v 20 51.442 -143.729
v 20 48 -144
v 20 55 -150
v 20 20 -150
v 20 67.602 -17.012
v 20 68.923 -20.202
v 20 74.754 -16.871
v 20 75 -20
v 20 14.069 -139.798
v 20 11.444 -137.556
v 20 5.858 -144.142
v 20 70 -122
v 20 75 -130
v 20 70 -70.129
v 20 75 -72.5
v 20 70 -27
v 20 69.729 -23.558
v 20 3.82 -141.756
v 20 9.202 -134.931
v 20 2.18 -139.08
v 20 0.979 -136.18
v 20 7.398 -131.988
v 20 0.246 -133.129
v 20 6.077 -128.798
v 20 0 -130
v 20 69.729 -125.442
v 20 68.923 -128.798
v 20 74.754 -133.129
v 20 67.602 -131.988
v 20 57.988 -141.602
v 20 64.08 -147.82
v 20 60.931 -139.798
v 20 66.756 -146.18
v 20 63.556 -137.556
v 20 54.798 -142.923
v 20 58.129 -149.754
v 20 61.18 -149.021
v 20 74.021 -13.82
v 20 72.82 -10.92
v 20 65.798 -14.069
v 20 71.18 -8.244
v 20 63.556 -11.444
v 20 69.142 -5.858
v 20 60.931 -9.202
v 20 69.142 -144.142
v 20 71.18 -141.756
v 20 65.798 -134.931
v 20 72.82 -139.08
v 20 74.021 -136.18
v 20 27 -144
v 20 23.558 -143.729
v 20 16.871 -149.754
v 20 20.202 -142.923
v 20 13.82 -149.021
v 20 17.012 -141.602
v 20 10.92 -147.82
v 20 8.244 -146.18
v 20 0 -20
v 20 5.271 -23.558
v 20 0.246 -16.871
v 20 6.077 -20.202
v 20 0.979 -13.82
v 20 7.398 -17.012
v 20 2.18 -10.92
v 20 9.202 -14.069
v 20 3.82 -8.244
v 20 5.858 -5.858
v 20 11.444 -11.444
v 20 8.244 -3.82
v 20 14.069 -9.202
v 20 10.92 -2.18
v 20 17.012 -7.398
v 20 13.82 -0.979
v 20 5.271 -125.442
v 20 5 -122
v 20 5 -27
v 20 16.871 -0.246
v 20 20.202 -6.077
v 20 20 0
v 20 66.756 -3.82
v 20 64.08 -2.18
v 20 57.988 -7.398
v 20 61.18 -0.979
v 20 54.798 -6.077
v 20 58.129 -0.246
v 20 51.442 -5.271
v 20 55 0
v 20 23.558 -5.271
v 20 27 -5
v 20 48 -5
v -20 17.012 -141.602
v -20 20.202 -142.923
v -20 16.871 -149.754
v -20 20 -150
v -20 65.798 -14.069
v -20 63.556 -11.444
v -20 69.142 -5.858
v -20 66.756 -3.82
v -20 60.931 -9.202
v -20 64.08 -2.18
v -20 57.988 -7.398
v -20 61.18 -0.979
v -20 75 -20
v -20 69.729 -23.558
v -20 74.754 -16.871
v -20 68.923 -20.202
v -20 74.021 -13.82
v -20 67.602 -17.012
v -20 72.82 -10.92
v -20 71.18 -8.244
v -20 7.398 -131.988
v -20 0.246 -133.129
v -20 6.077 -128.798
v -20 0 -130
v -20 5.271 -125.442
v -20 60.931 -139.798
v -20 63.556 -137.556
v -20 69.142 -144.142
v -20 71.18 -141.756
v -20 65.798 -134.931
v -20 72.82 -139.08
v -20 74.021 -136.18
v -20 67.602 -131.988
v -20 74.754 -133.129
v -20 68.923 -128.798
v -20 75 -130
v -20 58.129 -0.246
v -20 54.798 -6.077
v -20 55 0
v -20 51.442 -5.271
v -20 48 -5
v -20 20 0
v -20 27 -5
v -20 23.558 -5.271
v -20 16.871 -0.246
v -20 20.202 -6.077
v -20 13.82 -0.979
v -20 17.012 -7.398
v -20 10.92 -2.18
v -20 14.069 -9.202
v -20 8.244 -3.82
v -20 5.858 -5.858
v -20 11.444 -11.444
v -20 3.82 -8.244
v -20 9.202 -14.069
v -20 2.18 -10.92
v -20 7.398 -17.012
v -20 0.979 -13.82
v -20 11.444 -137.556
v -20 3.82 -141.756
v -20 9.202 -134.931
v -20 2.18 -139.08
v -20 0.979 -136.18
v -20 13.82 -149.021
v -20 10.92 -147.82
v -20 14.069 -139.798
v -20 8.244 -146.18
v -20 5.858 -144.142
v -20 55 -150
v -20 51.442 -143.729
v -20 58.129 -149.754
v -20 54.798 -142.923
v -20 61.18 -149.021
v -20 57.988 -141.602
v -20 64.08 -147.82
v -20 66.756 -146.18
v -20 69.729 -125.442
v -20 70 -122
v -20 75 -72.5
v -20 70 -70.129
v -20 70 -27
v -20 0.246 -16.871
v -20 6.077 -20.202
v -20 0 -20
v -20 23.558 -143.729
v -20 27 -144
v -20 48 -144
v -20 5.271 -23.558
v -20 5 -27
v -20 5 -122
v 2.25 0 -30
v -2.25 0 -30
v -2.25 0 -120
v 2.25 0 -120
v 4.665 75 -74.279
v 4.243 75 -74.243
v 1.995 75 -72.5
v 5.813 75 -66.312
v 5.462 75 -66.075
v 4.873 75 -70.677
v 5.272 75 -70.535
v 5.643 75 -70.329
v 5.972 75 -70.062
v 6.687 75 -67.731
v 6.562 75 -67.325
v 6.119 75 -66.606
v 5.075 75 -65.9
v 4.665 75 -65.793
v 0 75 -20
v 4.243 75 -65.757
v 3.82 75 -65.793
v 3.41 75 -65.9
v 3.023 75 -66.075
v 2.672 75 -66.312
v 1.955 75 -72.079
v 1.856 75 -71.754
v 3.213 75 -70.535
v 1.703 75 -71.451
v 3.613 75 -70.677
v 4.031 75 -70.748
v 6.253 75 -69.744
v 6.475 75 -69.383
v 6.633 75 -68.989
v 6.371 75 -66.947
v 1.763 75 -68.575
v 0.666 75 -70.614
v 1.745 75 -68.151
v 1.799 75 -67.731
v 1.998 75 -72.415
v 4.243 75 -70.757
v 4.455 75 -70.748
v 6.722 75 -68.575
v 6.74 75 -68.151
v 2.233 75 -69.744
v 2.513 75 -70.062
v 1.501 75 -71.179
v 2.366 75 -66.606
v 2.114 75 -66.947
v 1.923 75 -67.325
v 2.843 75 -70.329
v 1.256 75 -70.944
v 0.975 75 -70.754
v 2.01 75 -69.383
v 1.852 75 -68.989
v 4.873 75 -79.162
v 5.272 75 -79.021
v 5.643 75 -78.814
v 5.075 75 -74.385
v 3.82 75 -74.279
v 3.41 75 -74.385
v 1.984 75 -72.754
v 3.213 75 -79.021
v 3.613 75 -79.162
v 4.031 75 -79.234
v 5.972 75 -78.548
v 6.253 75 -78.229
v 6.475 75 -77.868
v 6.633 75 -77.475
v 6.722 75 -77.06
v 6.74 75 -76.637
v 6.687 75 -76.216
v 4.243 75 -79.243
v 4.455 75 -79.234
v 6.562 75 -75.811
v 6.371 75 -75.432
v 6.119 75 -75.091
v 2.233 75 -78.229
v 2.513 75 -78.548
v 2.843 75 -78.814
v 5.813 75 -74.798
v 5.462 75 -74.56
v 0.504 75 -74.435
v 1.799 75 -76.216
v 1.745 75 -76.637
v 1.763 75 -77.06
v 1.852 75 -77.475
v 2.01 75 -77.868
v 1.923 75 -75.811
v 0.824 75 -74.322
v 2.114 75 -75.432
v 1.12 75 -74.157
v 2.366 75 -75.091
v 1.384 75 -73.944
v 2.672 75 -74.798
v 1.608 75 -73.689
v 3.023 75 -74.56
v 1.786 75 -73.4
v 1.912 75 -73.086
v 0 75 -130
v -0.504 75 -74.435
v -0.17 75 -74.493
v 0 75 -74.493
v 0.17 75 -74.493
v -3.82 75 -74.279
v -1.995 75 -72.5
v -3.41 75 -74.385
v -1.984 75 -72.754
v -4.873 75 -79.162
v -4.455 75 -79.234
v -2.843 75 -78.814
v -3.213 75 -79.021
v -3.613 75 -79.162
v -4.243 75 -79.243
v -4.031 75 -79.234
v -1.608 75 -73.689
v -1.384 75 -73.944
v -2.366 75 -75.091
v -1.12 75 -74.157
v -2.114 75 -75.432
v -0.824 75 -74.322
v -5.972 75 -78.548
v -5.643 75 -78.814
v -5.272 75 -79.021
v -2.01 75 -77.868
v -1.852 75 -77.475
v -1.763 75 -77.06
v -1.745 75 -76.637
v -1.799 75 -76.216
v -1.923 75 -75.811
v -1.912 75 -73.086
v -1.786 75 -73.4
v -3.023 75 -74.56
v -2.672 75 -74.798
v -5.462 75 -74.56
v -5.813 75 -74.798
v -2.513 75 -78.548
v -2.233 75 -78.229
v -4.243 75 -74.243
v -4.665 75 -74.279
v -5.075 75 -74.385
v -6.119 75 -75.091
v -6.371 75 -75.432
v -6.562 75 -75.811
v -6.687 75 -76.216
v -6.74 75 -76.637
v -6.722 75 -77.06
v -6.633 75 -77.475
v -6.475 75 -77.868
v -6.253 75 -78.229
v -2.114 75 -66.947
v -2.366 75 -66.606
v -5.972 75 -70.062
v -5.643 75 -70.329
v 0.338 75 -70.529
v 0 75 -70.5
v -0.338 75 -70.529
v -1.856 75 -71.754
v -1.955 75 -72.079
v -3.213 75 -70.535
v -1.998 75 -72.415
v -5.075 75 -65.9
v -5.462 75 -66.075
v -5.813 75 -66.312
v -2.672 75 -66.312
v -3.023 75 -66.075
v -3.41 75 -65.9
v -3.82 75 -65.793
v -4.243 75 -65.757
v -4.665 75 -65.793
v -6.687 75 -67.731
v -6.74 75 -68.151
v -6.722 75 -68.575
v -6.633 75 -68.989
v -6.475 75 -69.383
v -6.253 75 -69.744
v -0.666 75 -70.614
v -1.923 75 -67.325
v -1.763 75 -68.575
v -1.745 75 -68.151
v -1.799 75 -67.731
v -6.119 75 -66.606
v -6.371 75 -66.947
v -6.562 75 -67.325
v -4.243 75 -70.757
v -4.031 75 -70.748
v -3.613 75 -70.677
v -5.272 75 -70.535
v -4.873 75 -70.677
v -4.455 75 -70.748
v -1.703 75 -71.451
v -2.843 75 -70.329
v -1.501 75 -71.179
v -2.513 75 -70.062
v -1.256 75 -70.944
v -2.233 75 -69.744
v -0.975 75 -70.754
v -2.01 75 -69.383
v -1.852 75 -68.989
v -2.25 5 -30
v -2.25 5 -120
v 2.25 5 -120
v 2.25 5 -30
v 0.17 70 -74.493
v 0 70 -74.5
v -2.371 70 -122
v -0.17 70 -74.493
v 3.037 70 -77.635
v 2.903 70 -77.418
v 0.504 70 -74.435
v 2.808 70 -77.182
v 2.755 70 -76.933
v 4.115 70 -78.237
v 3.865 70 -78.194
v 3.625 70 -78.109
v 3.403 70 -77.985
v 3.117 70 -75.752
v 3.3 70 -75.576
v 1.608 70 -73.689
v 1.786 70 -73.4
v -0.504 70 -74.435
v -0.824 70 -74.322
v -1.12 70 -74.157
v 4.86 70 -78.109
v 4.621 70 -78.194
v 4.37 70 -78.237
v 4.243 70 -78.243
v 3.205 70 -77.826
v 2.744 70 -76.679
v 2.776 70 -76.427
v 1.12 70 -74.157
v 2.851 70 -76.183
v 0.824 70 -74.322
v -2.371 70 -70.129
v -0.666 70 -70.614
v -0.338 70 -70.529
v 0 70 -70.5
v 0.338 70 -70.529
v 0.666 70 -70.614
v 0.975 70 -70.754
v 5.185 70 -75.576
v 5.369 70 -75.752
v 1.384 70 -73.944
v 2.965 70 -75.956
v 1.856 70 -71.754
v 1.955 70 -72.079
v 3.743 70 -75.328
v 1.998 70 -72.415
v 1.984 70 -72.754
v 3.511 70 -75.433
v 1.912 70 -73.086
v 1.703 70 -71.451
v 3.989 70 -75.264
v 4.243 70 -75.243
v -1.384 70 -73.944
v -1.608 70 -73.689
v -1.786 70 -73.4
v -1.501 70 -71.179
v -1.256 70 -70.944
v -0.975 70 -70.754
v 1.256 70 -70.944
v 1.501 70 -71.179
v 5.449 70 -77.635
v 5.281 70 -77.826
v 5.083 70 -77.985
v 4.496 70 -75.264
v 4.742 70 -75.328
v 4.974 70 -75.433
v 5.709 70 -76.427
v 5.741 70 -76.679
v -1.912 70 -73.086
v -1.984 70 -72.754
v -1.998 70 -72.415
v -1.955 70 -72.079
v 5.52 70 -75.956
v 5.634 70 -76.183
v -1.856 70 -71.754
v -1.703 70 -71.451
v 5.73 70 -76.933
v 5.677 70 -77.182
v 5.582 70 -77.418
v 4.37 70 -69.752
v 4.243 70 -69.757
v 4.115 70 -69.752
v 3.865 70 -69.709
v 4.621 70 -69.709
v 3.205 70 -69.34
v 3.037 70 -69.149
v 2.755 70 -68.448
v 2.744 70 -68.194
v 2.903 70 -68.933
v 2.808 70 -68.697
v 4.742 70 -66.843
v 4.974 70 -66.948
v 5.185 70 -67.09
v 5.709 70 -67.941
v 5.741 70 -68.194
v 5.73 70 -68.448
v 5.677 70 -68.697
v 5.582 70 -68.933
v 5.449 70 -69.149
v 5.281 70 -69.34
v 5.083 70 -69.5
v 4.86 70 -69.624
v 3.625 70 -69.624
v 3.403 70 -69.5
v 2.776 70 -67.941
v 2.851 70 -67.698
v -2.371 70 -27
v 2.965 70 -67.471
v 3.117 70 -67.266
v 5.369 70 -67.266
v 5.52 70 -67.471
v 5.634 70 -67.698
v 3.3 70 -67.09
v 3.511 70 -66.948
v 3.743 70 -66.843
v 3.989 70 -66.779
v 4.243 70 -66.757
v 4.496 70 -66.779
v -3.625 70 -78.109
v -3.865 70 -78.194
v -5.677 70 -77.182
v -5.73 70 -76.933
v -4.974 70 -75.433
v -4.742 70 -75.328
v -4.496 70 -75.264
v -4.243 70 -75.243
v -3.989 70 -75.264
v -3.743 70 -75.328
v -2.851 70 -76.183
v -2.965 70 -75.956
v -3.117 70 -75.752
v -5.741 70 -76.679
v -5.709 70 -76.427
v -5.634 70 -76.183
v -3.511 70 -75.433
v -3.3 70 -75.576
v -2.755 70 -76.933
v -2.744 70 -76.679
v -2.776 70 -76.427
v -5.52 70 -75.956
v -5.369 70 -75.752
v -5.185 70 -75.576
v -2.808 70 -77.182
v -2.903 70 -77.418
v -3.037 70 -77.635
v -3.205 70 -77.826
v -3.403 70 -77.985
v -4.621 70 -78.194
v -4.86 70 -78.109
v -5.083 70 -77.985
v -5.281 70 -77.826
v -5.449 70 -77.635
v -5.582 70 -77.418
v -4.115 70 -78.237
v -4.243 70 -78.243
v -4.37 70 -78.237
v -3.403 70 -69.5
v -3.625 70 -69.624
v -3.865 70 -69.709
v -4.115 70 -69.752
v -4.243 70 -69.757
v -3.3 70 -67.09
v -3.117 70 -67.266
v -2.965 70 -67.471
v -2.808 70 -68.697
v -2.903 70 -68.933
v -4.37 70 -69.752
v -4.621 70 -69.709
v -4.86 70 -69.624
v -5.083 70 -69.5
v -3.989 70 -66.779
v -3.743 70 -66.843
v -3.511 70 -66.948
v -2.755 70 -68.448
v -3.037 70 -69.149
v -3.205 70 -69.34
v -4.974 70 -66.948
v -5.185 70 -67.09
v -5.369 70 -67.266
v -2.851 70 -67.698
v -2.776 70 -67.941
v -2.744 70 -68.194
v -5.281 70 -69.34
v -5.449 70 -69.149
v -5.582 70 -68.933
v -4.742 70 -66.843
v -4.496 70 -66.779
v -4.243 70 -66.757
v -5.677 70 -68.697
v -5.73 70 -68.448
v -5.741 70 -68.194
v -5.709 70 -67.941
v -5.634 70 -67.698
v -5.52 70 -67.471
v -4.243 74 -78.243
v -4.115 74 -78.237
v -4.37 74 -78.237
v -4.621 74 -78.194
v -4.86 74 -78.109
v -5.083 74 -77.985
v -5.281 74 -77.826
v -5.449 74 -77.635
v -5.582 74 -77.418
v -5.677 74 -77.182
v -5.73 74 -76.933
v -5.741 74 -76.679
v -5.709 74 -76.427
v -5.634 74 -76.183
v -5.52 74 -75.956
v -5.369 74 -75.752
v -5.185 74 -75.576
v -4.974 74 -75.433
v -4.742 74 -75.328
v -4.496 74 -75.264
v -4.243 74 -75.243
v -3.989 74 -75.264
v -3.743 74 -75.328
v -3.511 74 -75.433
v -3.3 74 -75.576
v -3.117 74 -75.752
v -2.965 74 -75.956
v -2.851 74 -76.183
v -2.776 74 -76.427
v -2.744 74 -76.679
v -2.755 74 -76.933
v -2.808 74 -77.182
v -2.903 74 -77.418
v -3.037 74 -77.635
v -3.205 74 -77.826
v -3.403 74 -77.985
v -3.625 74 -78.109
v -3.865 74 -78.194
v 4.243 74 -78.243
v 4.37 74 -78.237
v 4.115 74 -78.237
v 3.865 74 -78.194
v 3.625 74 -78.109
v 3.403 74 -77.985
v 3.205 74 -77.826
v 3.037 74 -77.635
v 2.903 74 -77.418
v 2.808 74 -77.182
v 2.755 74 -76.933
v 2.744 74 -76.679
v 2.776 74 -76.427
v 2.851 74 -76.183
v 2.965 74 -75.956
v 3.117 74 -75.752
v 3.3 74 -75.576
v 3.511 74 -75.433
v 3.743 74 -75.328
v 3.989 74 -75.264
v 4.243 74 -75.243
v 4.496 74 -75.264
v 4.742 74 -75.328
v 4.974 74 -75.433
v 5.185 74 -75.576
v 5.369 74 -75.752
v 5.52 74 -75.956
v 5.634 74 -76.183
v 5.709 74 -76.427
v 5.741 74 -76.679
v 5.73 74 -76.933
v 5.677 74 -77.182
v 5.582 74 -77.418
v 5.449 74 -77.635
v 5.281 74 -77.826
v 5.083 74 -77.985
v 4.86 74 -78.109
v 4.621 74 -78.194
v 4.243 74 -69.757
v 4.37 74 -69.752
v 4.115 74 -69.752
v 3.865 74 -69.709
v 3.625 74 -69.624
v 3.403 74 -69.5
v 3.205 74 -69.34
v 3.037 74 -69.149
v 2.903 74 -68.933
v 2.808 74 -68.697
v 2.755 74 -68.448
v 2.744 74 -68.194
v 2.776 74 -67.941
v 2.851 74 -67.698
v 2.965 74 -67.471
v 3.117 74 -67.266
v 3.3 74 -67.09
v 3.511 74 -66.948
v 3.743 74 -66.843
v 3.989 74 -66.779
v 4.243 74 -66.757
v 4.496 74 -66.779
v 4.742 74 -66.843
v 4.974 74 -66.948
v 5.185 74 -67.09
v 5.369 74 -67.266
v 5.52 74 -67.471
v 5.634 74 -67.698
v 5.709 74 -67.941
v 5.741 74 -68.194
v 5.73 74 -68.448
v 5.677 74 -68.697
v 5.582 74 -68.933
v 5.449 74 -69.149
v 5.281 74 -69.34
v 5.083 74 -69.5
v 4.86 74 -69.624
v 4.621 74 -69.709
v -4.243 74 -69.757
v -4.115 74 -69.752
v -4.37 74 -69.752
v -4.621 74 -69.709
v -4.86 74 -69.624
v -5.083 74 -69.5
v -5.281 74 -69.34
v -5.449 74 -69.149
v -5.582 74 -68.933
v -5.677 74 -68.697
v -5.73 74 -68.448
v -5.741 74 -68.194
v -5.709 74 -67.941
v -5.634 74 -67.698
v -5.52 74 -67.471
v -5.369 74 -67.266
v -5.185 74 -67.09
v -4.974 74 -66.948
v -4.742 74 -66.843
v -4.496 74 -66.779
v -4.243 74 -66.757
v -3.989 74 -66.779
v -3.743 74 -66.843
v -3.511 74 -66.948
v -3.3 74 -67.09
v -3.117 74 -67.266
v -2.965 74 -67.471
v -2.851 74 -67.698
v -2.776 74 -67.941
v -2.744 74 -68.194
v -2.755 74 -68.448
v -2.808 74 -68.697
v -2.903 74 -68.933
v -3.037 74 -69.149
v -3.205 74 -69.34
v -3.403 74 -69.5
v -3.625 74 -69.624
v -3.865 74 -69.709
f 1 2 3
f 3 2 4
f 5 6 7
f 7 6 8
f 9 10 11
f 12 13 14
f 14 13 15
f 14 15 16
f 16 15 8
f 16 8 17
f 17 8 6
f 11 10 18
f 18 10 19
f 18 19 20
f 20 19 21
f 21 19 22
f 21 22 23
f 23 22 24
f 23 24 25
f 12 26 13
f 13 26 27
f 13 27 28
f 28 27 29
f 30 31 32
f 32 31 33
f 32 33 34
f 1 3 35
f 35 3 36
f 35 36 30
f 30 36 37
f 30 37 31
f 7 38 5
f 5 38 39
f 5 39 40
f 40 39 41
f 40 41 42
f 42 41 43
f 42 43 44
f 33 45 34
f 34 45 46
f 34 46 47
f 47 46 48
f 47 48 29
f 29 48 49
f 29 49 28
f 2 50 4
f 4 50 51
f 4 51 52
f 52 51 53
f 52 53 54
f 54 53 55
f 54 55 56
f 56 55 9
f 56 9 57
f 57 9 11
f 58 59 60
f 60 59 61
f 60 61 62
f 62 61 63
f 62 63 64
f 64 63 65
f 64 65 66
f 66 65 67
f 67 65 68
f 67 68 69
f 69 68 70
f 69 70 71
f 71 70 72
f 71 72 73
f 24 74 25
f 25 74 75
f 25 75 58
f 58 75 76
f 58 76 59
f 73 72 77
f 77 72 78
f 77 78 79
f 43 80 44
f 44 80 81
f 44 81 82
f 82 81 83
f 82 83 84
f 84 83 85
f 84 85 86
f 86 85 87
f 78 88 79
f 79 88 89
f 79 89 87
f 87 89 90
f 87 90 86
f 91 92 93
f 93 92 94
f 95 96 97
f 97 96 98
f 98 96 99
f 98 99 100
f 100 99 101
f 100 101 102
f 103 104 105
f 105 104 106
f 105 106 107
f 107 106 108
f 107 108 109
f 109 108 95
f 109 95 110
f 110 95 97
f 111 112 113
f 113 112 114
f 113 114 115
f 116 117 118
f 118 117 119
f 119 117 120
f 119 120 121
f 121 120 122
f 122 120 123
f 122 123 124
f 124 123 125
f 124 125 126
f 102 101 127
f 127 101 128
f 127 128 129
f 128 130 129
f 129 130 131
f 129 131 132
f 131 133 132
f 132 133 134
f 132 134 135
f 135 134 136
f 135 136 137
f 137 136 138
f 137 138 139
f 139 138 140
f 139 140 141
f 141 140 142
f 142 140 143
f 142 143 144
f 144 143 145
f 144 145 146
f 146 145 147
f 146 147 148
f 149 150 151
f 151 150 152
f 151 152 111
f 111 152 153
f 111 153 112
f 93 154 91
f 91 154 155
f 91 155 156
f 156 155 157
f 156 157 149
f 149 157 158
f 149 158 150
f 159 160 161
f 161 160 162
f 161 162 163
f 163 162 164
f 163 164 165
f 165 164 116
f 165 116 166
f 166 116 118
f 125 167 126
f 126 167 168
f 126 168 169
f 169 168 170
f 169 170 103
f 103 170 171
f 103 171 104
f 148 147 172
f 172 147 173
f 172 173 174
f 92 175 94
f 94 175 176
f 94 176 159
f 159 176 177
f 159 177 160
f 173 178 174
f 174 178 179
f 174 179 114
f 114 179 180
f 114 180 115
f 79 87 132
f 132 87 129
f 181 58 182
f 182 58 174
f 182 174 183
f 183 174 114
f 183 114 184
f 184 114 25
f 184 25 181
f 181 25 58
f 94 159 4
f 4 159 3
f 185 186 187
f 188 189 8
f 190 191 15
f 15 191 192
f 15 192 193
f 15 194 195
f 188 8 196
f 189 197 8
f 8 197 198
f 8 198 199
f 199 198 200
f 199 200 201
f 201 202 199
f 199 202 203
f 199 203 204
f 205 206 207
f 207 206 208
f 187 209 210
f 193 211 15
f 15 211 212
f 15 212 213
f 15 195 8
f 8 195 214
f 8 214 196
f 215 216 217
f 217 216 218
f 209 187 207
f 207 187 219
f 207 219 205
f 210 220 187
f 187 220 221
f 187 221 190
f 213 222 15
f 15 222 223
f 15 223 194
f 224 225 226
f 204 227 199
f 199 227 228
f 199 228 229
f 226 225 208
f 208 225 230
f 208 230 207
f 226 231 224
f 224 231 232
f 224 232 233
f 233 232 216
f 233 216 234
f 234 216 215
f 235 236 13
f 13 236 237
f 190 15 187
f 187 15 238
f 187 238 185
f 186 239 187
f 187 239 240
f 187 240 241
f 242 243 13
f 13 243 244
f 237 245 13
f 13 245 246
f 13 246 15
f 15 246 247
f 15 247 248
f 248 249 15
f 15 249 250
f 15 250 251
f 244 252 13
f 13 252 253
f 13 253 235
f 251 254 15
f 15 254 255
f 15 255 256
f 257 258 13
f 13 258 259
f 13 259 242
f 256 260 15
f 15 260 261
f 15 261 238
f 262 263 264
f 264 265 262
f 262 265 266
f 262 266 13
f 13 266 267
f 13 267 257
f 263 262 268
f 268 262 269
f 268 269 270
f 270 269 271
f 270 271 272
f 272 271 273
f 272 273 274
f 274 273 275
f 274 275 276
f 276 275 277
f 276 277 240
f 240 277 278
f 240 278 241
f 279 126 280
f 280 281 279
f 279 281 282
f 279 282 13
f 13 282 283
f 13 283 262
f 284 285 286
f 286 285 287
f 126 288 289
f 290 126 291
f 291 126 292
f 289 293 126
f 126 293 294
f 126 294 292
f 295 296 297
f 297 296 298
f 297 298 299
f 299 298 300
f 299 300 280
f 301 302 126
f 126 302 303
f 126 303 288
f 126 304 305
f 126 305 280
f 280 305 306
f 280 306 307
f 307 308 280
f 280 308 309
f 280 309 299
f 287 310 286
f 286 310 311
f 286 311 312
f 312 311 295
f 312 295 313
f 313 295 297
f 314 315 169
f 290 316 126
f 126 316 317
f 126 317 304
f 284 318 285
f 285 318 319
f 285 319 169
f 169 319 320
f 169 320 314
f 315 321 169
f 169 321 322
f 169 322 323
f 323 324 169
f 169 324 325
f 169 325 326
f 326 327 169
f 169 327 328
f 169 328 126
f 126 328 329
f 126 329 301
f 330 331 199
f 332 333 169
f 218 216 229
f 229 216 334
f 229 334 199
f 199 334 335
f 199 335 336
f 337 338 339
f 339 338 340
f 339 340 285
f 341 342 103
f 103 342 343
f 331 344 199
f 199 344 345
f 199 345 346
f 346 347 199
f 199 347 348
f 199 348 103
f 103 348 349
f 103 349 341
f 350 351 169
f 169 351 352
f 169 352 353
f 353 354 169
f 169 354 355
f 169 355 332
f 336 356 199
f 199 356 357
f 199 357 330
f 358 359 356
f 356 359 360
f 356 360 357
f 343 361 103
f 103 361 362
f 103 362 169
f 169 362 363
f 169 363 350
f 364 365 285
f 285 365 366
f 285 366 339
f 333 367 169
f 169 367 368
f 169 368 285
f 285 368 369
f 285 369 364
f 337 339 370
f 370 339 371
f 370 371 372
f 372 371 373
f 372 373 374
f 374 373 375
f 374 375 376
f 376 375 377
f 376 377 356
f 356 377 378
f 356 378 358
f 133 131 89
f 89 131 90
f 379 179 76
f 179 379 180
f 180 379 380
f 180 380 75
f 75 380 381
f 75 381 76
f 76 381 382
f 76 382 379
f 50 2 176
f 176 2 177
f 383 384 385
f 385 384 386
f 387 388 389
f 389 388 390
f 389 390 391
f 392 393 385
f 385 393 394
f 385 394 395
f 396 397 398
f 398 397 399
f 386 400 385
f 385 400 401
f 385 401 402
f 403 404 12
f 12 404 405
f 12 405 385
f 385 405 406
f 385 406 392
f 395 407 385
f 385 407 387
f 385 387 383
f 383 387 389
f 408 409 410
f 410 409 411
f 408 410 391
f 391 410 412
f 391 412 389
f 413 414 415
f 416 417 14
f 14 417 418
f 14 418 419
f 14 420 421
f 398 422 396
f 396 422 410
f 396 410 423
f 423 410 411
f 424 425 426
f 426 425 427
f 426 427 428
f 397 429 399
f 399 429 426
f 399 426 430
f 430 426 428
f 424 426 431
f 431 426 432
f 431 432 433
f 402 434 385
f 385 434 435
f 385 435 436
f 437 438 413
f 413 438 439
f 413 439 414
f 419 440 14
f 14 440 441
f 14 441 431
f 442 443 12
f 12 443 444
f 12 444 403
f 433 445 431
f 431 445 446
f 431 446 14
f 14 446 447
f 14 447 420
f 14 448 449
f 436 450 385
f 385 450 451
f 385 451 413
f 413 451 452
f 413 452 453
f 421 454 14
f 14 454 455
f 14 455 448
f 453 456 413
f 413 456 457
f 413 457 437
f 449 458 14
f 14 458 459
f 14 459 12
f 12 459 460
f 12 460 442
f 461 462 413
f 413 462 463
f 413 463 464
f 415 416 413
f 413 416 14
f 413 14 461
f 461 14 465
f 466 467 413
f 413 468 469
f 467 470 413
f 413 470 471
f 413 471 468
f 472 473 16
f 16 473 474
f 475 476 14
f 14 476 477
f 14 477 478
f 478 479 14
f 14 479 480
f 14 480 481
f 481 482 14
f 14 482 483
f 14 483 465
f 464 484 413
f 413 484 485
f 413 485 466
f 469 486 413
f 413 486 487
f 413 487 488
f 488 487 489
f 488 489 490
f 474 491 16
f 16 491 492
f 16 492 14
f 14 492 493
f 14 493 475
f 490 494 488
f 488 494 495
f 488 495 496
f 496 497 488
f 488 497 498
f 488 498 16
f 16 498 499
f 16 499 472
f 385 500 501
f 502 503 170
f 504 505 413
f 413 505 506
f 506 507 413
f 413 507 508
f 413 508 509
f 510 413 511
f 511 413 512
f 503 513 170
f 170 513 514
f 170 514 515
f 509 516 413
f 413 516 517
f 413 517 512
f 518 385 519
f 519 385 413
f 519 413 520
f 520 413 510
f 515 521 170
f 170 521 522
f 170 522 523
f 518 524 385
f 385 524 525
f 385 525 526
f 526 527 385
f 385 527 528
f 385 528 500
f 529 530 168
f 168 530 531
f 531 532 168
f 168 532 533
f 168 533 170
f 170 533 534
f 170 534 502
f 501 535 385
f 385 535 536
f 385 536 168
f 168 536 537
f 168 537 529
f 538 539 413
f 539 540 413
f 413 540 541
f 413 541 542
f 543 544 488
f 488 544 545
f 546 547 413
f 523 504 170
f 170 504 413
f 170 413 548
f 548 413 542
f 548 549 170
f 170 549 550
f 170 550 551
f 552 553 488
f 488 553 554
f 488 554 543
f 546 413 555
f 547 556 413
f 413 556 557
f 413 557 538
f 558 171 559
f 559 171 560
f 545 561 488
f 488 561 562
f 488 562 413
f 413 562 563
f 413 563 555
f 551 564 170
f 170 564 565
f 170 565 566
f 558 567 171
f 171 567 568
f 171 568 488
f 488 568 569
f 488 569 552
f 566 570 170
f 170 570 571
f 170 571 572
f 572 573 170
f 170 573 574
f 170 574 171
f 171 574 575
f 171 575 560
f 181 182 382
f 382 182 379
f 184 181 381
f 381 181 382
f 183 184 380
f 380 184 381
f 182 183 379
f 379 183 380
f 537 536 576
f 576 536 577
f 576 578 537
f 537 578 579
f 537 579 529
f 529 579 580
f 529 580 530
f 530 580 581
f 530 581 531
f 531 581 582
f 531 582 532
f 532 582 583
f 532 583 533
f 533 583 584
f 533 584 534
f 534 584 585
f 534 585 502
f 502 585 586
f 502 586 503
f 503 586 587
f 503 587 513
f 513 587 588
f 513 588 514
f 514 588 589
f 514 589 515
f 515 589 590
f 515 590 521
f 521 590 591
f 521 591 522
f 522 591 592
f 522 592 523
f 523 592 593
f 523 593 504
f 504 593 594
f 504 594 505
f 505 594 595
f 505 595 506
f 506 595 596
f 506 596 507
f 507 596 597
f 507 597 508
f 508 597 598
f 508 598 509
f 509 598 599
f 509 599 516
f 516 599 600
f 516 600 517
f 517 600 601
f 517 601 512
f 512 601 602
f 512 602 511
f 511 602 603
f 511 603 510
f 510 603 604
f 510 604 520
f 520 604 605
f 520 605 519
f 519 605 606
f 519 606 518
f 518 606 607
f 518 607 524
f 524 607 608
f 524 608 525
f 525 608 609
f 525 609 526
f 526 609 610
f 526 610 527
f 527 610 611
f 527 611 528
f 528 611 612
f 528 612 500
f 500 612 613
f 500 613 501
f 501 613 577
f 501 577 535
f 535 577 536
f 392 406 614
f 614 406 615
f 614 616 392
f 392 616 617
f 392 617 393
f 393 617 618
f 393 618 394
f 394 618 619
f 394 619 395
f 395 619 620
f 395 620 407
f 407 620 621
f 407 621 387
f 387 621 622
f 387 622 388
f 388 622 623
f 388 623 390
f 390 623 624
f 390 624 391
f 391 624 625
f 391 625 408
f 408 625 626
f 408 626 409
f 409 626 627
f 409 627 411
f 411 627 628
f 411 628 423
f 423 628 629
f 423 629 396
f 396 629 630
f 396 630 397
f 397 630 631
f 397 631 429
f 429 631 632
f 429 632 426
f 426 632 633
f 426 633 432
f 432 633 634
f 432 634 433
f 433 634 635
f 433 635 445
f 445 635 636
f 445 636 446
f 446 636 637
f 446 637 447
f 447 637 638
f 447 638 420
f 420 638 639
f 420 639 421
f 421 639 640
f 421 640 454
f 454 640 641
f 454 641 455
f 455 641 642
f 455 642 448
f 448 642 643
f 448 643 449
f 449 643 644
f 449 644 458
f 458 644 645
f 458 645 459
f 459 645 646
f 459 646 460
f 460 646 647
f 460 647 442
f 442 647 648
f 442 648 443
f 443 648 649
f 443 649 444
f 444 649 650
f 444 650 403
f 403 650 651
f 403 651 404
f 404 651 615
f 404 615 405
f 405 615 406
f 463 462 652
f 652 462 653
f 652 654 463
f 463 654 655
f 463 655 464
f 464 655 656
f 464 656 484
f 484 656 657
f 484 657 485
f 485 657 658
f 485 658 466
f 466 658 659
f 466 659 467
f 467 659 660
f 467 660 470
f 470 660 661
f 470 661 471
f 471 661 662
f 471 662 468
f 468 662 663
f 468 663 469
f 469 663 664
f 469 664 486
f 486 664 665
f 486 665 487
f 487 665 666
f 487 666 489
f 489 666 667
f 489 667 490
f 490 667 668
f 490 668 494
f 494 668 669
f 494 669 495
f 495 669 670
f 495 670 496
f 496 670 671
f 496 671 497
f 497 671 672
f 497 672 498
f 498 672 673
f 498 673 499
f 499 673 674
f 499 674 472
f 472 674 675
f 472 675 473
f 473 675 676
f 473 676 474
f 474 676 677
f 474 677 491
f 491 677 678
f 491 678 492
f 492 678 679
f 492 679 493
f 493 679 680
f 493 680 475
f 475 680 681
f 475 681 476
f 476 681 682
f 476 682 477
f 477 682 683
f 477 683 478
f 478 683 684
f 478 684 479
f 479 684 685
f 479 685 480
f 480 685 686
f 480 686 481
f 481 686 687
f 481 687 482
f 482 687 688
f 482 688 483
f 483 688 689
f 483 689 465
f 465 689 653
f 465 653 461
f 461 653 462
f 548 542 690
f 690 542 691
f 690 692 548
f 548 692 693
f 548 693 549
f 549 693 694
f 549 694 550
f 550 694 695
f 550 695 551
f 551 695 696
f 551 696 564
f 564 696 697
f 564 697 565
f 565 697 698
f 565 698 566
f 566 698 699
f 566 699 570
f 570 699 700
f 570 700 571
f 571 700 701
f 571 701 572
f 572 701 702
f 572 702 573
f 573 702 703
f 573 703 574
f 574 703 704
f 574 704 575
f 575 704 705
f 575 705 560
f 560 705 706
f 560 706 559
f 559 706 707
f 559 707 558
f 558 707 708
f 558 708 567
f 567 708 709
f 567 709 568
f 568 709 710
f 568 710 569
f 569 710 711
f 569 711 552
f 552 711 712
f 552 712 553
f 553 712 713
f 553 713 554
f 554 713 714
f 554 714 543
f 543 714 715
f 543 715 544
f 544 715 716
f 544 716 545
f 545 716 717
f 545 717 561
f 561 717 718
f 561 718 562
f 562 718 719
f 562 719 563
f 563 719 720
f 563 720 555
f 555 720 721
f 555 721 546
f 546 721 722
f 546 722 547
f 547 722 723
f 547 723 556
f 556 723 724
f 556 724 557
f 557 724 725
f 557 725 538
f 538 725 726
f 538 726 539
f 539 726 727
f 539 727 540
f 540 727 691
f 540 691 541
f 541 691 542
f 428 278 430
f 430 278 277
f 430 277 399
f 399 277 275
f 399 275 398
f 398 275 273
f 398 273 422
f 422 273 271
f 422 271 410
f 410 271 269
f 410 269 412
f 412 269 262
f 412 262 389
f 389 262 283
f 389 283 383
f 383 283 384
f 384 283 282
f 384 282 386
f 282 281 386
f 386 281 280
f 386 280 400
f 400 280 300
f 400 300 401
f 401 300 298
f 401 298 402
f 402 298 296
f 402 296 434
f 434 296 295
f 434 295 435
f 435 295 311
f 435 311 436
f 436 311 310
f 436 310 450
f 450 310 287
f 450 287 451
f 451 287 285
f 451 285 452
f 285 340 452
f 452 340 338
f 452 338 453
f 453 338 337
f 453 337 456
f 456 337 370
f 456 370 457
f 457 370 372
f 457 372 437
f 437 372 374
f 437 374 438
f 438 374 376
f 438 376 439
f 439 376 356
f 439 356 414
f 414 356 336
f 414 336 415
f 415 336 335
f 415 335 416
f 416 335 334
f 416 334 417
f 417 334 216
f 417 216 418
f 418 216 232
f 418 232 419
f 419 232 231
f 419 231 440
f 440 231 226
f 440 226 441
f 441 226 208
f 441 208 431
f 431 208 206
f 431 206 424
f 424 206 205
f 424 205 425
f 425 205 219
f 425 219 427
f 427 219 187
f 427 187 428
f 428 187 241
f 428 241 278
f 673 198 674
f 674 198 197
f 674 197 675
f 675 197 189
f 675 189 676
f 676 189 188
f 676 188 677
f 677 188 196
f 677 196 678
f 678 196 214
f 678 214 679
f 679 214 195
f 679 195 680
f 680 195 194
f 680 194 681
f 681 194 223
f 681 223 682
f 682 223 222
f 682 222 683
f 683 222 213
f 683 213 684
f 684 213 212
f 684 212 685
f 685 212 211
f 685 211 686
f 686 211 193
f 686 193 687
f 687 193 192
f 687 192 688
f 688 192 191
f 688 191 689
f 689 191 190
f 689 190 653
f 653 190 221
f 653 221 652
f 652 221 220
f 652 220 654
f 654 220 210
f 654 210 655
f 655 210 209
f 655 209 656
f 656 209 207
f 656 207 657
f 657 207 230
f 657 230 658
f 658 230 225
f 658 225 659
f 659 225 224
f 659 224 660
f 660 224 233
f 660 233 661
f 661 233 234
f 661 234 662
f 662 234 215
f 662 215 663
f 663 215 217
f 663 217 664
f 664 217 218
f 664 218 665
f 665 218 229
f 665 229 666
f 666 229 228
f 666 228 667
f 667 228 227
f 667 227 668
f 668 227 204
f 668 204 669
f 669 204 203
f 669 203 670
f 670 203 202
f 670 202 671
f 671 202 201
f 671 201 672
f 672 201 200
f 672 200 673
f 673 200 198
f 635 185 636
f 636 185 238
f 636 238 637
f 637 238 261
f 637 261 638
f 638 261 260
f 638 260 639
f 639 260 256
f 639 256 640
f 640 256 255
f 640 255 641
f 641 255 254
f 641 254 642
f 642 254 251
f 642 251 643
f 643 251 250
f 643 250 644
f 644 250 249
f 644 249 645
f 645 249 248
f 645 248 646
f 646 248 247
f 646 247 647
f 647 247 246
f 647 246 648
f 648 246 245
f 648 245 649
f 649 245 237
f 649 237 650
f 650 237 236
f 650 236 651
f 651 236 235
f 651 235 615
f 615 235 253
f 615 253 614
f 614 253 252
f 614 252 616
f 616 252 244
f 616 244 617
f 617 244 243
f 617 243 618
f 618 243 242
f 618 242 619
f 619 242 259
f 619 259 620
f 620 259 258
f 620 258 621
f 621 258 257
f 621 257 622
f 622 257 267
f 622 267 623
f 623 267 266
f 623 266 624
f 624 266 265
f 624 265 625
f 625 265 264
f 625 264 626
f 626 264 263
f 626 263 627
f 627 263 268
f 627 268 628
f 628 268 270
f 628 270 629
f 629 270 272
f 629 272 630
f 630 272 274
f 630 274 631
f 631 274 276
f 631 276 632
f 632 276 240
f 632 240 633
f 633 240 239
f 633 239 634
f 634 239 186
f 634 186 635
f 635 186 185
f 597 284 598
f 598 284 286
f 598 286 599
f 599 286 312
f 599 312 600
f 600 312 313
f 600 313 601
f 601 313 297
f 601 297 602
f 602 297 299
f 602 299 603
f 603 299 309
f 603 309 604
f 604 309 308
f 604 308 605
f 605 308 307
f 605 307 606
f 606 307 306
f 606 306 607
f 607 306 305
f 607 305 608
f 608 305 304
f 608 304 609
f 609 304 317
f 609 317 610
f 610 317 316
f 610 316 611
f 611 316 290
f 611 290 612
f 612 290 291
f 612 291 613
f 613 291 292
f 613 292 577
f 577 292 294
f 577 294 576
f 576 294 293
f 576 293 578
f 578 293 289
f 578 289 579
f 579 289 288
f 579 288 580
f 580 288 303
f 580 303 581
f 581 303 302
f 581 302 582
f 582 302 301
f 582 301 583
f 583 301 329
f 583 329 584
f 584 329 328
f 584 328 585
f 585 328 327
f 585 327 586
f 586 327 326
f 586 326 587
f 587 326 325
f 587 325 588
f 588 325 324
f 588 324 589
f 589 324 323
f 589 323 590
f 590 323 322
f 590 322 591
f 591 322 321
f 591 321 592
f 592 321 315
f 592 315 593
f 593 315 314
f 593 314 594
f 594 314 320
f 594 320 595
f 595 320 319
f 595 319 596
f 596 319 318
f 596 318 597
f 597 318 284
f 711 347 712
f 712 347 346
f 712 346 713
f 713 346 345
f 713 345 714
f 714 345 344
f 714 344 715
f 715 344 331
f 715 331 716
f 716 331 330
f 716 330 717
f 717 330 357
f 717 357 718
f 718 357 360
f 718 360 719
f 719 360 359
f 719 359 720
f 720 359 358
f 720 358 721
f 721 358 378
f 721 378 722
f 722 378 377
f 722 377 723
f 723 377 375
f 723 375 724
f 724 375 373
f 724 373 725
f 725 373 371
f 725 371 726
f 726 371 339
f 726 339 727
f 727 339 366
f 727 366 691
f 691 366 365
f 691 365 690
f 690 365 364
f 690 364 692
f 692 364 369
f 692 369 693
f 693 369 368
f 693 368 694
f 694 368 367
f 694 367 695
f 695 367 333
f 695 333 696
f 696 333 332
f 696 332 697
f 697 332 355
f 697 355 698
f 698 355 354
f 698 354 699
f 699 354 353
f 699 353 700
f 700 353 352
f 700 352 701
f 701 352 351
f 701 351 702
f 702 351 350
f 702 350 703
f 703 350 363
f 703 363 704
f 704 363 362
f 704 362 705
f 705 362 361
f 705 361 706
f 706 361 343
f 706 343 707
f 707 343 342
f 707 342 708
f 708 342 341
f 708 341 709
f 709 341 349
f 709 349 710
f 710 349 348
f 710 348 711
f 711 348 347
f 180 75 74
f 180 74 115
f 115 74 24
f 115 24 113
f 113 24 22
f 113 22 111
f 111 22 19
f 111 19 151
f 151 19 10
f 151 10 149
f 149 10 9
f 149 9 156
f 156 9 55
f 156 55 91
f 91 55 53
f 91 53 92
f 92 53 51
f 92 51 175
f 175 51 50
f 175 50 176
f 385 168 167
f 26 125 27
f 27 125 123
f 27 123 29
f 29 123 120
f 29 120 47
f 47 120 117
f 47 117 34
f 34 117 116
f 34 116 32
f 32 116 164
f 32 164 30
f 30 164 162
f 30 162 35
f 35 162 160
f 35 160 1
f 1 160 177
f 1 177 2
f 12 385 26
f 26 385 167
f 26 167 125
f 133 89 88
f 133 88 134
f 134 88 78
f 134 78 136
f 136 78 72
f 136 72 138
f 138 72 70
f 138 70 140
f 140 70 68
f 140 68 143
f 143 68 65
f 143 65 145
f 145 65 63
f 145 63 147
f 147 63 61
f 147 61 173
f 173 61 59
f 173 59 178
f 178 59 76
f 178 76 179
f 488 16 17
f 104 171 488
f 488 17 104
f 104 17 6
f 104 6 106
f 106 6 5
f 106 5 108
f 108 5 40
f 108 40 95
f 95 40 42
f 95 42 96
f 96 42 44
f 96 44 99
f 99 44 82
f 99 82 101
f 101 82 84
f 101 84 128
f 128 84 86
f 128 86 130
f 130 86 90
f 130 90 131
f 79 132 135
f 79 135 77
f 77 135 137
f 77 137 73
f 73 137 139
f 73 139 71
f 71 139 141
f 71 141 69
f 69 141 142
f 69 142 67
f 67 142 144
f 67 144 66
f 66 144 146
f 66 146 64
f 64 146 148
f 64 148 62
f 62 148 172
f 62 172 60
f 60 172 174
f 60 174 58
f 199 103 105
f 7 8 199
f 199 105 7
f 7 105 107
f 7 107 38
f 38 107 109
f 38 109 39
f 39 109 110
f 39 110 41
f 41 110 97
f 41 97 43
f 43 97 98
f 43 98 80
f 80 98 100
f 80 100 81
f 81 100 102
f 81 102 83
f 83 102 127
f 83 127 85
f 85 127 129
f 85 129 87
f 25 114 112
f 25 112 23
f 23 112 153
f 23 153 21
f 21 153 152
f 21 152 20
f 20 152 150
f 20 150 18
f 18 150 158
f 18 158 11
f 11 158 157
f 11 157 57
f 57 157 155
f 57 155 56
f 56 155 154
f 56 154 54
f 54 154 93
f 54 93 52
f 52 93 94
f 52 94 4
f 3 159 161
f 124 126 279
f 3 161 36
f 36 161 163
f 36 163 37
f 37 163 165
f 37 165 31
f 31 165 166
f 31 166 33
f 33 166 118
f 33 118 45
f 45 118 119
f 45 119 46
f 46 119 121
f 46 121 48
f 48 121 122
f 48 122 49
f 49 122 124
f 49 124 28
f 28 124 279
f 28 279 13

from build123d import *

# Parameters (mm, degrees)
BOSS_EXTRUDE1_DEPTH = 20
SKETCH3_W           = 4.5
SKETCH3_H           = 90
CUT_EXTRUDE2_DEPTH  = 10
SKETCH4_R           = 1.5
SKETCH4_R_2         = 2
CUT_EXTRUDE3_DEPTH  = 10
CHAMFER1_SIZE       = 1
FILLET1_R           = 22
FILLET2_R           = 20


with BuildPart() as part:
    # Sketch1 → Boss-Extrude1 (new, symmetric)
    with BuildSketch(Plane(origin=(0, 0, 0), x_dir=(0, 0, -1), z_dir=(1, 0, 0))):
        Polygon((0, 0), (150, 0), (150, 3), (150, 75), (120, 75), (0, 75), align=None)
        Polygon((144, 5), (5, 5), (5, 70), (120, 70), (144, 70), align=None, mode=Mode.SUBTRACT)
    extrude(amount=BOSS_EXTRUDE1_DEPTH, both=True)

    # Sketch3 → Cut-Extrude2 (cut)
    with BuildSketch(Plane.XZ):
        with Locations((0, -75)):
            Rectangle(SKETCH3_W, SKETCH3_H)
    extrude(amount=-CUT_EXTRUDE2_DEPTH, mode=Mode.SUBTRACT)

    # Sketch4 → Cut-Extrude3 (cut)
    with BuildSketch(Plane(origin=(0, 75, 0), x_dir=(1, 0, 0), z_dir=(0, 1, 0))):
        with Locations(Location((-4.242640687, 76.742640687, 0), (0, 0, 270))):
            Circle(SKETCH4_R)
        with Locations(Location((4.242640687, 76.742640687, 0), (0, 0, 270))):
            Circle(SKETCH4_R)
        with Locations(Location((4.242640687, 68.257359313, 0), (0, 0, 270))):
            Circle(SKETCH4_R)
        with Locations(Location((-4.242640687, 68.257359313, 0), (0, 0, 270))):
            Circle(SKETCH4_R)
        with Locations(Location((0, 72.5, 0), (0, 0, 270))):
            Circle(SKETCH4_R_2)
    extrude(amount=-CUT_EXTRUDE3_DEPTH, mode=Mode.SUBTRACT)

    # Chamfer1
    chamfer1_edges = [part.edges().sort_by_distance(p)[0] for p in [
        (-4.242640687, 75, -78.242640687),
        (4.242640687, 75, -78.242640687),
        (4.242640687, 75, -69.757359313),
        (-4.242640687, 75, -69.757359313),
    ]]
    chamfer(chamfer1_edges, length=CHAMFER1_SIZE)

    # Fillet1
    fillet1_edges = [part.edges().sort_by_distance(p)[0] for p in [
        (0, 70, -5),
        (0, 5, -5),
        (0, 5, -144),
        (0, 70, -144),
    ]]
    fillet(fillet1_edges, radius=FILLET1_R)

    # Fillet2
    fillet2_edges = [part.edges().sort_by_distance(p)[0] for p in [
        (0, 75, 0),
        (0, 75, -150),
        (0, 0, -150),
        (0, 0, 0),
    ]]
    fillet(fillet2_edges, radius=FILLET2_R)


solid = part.part
